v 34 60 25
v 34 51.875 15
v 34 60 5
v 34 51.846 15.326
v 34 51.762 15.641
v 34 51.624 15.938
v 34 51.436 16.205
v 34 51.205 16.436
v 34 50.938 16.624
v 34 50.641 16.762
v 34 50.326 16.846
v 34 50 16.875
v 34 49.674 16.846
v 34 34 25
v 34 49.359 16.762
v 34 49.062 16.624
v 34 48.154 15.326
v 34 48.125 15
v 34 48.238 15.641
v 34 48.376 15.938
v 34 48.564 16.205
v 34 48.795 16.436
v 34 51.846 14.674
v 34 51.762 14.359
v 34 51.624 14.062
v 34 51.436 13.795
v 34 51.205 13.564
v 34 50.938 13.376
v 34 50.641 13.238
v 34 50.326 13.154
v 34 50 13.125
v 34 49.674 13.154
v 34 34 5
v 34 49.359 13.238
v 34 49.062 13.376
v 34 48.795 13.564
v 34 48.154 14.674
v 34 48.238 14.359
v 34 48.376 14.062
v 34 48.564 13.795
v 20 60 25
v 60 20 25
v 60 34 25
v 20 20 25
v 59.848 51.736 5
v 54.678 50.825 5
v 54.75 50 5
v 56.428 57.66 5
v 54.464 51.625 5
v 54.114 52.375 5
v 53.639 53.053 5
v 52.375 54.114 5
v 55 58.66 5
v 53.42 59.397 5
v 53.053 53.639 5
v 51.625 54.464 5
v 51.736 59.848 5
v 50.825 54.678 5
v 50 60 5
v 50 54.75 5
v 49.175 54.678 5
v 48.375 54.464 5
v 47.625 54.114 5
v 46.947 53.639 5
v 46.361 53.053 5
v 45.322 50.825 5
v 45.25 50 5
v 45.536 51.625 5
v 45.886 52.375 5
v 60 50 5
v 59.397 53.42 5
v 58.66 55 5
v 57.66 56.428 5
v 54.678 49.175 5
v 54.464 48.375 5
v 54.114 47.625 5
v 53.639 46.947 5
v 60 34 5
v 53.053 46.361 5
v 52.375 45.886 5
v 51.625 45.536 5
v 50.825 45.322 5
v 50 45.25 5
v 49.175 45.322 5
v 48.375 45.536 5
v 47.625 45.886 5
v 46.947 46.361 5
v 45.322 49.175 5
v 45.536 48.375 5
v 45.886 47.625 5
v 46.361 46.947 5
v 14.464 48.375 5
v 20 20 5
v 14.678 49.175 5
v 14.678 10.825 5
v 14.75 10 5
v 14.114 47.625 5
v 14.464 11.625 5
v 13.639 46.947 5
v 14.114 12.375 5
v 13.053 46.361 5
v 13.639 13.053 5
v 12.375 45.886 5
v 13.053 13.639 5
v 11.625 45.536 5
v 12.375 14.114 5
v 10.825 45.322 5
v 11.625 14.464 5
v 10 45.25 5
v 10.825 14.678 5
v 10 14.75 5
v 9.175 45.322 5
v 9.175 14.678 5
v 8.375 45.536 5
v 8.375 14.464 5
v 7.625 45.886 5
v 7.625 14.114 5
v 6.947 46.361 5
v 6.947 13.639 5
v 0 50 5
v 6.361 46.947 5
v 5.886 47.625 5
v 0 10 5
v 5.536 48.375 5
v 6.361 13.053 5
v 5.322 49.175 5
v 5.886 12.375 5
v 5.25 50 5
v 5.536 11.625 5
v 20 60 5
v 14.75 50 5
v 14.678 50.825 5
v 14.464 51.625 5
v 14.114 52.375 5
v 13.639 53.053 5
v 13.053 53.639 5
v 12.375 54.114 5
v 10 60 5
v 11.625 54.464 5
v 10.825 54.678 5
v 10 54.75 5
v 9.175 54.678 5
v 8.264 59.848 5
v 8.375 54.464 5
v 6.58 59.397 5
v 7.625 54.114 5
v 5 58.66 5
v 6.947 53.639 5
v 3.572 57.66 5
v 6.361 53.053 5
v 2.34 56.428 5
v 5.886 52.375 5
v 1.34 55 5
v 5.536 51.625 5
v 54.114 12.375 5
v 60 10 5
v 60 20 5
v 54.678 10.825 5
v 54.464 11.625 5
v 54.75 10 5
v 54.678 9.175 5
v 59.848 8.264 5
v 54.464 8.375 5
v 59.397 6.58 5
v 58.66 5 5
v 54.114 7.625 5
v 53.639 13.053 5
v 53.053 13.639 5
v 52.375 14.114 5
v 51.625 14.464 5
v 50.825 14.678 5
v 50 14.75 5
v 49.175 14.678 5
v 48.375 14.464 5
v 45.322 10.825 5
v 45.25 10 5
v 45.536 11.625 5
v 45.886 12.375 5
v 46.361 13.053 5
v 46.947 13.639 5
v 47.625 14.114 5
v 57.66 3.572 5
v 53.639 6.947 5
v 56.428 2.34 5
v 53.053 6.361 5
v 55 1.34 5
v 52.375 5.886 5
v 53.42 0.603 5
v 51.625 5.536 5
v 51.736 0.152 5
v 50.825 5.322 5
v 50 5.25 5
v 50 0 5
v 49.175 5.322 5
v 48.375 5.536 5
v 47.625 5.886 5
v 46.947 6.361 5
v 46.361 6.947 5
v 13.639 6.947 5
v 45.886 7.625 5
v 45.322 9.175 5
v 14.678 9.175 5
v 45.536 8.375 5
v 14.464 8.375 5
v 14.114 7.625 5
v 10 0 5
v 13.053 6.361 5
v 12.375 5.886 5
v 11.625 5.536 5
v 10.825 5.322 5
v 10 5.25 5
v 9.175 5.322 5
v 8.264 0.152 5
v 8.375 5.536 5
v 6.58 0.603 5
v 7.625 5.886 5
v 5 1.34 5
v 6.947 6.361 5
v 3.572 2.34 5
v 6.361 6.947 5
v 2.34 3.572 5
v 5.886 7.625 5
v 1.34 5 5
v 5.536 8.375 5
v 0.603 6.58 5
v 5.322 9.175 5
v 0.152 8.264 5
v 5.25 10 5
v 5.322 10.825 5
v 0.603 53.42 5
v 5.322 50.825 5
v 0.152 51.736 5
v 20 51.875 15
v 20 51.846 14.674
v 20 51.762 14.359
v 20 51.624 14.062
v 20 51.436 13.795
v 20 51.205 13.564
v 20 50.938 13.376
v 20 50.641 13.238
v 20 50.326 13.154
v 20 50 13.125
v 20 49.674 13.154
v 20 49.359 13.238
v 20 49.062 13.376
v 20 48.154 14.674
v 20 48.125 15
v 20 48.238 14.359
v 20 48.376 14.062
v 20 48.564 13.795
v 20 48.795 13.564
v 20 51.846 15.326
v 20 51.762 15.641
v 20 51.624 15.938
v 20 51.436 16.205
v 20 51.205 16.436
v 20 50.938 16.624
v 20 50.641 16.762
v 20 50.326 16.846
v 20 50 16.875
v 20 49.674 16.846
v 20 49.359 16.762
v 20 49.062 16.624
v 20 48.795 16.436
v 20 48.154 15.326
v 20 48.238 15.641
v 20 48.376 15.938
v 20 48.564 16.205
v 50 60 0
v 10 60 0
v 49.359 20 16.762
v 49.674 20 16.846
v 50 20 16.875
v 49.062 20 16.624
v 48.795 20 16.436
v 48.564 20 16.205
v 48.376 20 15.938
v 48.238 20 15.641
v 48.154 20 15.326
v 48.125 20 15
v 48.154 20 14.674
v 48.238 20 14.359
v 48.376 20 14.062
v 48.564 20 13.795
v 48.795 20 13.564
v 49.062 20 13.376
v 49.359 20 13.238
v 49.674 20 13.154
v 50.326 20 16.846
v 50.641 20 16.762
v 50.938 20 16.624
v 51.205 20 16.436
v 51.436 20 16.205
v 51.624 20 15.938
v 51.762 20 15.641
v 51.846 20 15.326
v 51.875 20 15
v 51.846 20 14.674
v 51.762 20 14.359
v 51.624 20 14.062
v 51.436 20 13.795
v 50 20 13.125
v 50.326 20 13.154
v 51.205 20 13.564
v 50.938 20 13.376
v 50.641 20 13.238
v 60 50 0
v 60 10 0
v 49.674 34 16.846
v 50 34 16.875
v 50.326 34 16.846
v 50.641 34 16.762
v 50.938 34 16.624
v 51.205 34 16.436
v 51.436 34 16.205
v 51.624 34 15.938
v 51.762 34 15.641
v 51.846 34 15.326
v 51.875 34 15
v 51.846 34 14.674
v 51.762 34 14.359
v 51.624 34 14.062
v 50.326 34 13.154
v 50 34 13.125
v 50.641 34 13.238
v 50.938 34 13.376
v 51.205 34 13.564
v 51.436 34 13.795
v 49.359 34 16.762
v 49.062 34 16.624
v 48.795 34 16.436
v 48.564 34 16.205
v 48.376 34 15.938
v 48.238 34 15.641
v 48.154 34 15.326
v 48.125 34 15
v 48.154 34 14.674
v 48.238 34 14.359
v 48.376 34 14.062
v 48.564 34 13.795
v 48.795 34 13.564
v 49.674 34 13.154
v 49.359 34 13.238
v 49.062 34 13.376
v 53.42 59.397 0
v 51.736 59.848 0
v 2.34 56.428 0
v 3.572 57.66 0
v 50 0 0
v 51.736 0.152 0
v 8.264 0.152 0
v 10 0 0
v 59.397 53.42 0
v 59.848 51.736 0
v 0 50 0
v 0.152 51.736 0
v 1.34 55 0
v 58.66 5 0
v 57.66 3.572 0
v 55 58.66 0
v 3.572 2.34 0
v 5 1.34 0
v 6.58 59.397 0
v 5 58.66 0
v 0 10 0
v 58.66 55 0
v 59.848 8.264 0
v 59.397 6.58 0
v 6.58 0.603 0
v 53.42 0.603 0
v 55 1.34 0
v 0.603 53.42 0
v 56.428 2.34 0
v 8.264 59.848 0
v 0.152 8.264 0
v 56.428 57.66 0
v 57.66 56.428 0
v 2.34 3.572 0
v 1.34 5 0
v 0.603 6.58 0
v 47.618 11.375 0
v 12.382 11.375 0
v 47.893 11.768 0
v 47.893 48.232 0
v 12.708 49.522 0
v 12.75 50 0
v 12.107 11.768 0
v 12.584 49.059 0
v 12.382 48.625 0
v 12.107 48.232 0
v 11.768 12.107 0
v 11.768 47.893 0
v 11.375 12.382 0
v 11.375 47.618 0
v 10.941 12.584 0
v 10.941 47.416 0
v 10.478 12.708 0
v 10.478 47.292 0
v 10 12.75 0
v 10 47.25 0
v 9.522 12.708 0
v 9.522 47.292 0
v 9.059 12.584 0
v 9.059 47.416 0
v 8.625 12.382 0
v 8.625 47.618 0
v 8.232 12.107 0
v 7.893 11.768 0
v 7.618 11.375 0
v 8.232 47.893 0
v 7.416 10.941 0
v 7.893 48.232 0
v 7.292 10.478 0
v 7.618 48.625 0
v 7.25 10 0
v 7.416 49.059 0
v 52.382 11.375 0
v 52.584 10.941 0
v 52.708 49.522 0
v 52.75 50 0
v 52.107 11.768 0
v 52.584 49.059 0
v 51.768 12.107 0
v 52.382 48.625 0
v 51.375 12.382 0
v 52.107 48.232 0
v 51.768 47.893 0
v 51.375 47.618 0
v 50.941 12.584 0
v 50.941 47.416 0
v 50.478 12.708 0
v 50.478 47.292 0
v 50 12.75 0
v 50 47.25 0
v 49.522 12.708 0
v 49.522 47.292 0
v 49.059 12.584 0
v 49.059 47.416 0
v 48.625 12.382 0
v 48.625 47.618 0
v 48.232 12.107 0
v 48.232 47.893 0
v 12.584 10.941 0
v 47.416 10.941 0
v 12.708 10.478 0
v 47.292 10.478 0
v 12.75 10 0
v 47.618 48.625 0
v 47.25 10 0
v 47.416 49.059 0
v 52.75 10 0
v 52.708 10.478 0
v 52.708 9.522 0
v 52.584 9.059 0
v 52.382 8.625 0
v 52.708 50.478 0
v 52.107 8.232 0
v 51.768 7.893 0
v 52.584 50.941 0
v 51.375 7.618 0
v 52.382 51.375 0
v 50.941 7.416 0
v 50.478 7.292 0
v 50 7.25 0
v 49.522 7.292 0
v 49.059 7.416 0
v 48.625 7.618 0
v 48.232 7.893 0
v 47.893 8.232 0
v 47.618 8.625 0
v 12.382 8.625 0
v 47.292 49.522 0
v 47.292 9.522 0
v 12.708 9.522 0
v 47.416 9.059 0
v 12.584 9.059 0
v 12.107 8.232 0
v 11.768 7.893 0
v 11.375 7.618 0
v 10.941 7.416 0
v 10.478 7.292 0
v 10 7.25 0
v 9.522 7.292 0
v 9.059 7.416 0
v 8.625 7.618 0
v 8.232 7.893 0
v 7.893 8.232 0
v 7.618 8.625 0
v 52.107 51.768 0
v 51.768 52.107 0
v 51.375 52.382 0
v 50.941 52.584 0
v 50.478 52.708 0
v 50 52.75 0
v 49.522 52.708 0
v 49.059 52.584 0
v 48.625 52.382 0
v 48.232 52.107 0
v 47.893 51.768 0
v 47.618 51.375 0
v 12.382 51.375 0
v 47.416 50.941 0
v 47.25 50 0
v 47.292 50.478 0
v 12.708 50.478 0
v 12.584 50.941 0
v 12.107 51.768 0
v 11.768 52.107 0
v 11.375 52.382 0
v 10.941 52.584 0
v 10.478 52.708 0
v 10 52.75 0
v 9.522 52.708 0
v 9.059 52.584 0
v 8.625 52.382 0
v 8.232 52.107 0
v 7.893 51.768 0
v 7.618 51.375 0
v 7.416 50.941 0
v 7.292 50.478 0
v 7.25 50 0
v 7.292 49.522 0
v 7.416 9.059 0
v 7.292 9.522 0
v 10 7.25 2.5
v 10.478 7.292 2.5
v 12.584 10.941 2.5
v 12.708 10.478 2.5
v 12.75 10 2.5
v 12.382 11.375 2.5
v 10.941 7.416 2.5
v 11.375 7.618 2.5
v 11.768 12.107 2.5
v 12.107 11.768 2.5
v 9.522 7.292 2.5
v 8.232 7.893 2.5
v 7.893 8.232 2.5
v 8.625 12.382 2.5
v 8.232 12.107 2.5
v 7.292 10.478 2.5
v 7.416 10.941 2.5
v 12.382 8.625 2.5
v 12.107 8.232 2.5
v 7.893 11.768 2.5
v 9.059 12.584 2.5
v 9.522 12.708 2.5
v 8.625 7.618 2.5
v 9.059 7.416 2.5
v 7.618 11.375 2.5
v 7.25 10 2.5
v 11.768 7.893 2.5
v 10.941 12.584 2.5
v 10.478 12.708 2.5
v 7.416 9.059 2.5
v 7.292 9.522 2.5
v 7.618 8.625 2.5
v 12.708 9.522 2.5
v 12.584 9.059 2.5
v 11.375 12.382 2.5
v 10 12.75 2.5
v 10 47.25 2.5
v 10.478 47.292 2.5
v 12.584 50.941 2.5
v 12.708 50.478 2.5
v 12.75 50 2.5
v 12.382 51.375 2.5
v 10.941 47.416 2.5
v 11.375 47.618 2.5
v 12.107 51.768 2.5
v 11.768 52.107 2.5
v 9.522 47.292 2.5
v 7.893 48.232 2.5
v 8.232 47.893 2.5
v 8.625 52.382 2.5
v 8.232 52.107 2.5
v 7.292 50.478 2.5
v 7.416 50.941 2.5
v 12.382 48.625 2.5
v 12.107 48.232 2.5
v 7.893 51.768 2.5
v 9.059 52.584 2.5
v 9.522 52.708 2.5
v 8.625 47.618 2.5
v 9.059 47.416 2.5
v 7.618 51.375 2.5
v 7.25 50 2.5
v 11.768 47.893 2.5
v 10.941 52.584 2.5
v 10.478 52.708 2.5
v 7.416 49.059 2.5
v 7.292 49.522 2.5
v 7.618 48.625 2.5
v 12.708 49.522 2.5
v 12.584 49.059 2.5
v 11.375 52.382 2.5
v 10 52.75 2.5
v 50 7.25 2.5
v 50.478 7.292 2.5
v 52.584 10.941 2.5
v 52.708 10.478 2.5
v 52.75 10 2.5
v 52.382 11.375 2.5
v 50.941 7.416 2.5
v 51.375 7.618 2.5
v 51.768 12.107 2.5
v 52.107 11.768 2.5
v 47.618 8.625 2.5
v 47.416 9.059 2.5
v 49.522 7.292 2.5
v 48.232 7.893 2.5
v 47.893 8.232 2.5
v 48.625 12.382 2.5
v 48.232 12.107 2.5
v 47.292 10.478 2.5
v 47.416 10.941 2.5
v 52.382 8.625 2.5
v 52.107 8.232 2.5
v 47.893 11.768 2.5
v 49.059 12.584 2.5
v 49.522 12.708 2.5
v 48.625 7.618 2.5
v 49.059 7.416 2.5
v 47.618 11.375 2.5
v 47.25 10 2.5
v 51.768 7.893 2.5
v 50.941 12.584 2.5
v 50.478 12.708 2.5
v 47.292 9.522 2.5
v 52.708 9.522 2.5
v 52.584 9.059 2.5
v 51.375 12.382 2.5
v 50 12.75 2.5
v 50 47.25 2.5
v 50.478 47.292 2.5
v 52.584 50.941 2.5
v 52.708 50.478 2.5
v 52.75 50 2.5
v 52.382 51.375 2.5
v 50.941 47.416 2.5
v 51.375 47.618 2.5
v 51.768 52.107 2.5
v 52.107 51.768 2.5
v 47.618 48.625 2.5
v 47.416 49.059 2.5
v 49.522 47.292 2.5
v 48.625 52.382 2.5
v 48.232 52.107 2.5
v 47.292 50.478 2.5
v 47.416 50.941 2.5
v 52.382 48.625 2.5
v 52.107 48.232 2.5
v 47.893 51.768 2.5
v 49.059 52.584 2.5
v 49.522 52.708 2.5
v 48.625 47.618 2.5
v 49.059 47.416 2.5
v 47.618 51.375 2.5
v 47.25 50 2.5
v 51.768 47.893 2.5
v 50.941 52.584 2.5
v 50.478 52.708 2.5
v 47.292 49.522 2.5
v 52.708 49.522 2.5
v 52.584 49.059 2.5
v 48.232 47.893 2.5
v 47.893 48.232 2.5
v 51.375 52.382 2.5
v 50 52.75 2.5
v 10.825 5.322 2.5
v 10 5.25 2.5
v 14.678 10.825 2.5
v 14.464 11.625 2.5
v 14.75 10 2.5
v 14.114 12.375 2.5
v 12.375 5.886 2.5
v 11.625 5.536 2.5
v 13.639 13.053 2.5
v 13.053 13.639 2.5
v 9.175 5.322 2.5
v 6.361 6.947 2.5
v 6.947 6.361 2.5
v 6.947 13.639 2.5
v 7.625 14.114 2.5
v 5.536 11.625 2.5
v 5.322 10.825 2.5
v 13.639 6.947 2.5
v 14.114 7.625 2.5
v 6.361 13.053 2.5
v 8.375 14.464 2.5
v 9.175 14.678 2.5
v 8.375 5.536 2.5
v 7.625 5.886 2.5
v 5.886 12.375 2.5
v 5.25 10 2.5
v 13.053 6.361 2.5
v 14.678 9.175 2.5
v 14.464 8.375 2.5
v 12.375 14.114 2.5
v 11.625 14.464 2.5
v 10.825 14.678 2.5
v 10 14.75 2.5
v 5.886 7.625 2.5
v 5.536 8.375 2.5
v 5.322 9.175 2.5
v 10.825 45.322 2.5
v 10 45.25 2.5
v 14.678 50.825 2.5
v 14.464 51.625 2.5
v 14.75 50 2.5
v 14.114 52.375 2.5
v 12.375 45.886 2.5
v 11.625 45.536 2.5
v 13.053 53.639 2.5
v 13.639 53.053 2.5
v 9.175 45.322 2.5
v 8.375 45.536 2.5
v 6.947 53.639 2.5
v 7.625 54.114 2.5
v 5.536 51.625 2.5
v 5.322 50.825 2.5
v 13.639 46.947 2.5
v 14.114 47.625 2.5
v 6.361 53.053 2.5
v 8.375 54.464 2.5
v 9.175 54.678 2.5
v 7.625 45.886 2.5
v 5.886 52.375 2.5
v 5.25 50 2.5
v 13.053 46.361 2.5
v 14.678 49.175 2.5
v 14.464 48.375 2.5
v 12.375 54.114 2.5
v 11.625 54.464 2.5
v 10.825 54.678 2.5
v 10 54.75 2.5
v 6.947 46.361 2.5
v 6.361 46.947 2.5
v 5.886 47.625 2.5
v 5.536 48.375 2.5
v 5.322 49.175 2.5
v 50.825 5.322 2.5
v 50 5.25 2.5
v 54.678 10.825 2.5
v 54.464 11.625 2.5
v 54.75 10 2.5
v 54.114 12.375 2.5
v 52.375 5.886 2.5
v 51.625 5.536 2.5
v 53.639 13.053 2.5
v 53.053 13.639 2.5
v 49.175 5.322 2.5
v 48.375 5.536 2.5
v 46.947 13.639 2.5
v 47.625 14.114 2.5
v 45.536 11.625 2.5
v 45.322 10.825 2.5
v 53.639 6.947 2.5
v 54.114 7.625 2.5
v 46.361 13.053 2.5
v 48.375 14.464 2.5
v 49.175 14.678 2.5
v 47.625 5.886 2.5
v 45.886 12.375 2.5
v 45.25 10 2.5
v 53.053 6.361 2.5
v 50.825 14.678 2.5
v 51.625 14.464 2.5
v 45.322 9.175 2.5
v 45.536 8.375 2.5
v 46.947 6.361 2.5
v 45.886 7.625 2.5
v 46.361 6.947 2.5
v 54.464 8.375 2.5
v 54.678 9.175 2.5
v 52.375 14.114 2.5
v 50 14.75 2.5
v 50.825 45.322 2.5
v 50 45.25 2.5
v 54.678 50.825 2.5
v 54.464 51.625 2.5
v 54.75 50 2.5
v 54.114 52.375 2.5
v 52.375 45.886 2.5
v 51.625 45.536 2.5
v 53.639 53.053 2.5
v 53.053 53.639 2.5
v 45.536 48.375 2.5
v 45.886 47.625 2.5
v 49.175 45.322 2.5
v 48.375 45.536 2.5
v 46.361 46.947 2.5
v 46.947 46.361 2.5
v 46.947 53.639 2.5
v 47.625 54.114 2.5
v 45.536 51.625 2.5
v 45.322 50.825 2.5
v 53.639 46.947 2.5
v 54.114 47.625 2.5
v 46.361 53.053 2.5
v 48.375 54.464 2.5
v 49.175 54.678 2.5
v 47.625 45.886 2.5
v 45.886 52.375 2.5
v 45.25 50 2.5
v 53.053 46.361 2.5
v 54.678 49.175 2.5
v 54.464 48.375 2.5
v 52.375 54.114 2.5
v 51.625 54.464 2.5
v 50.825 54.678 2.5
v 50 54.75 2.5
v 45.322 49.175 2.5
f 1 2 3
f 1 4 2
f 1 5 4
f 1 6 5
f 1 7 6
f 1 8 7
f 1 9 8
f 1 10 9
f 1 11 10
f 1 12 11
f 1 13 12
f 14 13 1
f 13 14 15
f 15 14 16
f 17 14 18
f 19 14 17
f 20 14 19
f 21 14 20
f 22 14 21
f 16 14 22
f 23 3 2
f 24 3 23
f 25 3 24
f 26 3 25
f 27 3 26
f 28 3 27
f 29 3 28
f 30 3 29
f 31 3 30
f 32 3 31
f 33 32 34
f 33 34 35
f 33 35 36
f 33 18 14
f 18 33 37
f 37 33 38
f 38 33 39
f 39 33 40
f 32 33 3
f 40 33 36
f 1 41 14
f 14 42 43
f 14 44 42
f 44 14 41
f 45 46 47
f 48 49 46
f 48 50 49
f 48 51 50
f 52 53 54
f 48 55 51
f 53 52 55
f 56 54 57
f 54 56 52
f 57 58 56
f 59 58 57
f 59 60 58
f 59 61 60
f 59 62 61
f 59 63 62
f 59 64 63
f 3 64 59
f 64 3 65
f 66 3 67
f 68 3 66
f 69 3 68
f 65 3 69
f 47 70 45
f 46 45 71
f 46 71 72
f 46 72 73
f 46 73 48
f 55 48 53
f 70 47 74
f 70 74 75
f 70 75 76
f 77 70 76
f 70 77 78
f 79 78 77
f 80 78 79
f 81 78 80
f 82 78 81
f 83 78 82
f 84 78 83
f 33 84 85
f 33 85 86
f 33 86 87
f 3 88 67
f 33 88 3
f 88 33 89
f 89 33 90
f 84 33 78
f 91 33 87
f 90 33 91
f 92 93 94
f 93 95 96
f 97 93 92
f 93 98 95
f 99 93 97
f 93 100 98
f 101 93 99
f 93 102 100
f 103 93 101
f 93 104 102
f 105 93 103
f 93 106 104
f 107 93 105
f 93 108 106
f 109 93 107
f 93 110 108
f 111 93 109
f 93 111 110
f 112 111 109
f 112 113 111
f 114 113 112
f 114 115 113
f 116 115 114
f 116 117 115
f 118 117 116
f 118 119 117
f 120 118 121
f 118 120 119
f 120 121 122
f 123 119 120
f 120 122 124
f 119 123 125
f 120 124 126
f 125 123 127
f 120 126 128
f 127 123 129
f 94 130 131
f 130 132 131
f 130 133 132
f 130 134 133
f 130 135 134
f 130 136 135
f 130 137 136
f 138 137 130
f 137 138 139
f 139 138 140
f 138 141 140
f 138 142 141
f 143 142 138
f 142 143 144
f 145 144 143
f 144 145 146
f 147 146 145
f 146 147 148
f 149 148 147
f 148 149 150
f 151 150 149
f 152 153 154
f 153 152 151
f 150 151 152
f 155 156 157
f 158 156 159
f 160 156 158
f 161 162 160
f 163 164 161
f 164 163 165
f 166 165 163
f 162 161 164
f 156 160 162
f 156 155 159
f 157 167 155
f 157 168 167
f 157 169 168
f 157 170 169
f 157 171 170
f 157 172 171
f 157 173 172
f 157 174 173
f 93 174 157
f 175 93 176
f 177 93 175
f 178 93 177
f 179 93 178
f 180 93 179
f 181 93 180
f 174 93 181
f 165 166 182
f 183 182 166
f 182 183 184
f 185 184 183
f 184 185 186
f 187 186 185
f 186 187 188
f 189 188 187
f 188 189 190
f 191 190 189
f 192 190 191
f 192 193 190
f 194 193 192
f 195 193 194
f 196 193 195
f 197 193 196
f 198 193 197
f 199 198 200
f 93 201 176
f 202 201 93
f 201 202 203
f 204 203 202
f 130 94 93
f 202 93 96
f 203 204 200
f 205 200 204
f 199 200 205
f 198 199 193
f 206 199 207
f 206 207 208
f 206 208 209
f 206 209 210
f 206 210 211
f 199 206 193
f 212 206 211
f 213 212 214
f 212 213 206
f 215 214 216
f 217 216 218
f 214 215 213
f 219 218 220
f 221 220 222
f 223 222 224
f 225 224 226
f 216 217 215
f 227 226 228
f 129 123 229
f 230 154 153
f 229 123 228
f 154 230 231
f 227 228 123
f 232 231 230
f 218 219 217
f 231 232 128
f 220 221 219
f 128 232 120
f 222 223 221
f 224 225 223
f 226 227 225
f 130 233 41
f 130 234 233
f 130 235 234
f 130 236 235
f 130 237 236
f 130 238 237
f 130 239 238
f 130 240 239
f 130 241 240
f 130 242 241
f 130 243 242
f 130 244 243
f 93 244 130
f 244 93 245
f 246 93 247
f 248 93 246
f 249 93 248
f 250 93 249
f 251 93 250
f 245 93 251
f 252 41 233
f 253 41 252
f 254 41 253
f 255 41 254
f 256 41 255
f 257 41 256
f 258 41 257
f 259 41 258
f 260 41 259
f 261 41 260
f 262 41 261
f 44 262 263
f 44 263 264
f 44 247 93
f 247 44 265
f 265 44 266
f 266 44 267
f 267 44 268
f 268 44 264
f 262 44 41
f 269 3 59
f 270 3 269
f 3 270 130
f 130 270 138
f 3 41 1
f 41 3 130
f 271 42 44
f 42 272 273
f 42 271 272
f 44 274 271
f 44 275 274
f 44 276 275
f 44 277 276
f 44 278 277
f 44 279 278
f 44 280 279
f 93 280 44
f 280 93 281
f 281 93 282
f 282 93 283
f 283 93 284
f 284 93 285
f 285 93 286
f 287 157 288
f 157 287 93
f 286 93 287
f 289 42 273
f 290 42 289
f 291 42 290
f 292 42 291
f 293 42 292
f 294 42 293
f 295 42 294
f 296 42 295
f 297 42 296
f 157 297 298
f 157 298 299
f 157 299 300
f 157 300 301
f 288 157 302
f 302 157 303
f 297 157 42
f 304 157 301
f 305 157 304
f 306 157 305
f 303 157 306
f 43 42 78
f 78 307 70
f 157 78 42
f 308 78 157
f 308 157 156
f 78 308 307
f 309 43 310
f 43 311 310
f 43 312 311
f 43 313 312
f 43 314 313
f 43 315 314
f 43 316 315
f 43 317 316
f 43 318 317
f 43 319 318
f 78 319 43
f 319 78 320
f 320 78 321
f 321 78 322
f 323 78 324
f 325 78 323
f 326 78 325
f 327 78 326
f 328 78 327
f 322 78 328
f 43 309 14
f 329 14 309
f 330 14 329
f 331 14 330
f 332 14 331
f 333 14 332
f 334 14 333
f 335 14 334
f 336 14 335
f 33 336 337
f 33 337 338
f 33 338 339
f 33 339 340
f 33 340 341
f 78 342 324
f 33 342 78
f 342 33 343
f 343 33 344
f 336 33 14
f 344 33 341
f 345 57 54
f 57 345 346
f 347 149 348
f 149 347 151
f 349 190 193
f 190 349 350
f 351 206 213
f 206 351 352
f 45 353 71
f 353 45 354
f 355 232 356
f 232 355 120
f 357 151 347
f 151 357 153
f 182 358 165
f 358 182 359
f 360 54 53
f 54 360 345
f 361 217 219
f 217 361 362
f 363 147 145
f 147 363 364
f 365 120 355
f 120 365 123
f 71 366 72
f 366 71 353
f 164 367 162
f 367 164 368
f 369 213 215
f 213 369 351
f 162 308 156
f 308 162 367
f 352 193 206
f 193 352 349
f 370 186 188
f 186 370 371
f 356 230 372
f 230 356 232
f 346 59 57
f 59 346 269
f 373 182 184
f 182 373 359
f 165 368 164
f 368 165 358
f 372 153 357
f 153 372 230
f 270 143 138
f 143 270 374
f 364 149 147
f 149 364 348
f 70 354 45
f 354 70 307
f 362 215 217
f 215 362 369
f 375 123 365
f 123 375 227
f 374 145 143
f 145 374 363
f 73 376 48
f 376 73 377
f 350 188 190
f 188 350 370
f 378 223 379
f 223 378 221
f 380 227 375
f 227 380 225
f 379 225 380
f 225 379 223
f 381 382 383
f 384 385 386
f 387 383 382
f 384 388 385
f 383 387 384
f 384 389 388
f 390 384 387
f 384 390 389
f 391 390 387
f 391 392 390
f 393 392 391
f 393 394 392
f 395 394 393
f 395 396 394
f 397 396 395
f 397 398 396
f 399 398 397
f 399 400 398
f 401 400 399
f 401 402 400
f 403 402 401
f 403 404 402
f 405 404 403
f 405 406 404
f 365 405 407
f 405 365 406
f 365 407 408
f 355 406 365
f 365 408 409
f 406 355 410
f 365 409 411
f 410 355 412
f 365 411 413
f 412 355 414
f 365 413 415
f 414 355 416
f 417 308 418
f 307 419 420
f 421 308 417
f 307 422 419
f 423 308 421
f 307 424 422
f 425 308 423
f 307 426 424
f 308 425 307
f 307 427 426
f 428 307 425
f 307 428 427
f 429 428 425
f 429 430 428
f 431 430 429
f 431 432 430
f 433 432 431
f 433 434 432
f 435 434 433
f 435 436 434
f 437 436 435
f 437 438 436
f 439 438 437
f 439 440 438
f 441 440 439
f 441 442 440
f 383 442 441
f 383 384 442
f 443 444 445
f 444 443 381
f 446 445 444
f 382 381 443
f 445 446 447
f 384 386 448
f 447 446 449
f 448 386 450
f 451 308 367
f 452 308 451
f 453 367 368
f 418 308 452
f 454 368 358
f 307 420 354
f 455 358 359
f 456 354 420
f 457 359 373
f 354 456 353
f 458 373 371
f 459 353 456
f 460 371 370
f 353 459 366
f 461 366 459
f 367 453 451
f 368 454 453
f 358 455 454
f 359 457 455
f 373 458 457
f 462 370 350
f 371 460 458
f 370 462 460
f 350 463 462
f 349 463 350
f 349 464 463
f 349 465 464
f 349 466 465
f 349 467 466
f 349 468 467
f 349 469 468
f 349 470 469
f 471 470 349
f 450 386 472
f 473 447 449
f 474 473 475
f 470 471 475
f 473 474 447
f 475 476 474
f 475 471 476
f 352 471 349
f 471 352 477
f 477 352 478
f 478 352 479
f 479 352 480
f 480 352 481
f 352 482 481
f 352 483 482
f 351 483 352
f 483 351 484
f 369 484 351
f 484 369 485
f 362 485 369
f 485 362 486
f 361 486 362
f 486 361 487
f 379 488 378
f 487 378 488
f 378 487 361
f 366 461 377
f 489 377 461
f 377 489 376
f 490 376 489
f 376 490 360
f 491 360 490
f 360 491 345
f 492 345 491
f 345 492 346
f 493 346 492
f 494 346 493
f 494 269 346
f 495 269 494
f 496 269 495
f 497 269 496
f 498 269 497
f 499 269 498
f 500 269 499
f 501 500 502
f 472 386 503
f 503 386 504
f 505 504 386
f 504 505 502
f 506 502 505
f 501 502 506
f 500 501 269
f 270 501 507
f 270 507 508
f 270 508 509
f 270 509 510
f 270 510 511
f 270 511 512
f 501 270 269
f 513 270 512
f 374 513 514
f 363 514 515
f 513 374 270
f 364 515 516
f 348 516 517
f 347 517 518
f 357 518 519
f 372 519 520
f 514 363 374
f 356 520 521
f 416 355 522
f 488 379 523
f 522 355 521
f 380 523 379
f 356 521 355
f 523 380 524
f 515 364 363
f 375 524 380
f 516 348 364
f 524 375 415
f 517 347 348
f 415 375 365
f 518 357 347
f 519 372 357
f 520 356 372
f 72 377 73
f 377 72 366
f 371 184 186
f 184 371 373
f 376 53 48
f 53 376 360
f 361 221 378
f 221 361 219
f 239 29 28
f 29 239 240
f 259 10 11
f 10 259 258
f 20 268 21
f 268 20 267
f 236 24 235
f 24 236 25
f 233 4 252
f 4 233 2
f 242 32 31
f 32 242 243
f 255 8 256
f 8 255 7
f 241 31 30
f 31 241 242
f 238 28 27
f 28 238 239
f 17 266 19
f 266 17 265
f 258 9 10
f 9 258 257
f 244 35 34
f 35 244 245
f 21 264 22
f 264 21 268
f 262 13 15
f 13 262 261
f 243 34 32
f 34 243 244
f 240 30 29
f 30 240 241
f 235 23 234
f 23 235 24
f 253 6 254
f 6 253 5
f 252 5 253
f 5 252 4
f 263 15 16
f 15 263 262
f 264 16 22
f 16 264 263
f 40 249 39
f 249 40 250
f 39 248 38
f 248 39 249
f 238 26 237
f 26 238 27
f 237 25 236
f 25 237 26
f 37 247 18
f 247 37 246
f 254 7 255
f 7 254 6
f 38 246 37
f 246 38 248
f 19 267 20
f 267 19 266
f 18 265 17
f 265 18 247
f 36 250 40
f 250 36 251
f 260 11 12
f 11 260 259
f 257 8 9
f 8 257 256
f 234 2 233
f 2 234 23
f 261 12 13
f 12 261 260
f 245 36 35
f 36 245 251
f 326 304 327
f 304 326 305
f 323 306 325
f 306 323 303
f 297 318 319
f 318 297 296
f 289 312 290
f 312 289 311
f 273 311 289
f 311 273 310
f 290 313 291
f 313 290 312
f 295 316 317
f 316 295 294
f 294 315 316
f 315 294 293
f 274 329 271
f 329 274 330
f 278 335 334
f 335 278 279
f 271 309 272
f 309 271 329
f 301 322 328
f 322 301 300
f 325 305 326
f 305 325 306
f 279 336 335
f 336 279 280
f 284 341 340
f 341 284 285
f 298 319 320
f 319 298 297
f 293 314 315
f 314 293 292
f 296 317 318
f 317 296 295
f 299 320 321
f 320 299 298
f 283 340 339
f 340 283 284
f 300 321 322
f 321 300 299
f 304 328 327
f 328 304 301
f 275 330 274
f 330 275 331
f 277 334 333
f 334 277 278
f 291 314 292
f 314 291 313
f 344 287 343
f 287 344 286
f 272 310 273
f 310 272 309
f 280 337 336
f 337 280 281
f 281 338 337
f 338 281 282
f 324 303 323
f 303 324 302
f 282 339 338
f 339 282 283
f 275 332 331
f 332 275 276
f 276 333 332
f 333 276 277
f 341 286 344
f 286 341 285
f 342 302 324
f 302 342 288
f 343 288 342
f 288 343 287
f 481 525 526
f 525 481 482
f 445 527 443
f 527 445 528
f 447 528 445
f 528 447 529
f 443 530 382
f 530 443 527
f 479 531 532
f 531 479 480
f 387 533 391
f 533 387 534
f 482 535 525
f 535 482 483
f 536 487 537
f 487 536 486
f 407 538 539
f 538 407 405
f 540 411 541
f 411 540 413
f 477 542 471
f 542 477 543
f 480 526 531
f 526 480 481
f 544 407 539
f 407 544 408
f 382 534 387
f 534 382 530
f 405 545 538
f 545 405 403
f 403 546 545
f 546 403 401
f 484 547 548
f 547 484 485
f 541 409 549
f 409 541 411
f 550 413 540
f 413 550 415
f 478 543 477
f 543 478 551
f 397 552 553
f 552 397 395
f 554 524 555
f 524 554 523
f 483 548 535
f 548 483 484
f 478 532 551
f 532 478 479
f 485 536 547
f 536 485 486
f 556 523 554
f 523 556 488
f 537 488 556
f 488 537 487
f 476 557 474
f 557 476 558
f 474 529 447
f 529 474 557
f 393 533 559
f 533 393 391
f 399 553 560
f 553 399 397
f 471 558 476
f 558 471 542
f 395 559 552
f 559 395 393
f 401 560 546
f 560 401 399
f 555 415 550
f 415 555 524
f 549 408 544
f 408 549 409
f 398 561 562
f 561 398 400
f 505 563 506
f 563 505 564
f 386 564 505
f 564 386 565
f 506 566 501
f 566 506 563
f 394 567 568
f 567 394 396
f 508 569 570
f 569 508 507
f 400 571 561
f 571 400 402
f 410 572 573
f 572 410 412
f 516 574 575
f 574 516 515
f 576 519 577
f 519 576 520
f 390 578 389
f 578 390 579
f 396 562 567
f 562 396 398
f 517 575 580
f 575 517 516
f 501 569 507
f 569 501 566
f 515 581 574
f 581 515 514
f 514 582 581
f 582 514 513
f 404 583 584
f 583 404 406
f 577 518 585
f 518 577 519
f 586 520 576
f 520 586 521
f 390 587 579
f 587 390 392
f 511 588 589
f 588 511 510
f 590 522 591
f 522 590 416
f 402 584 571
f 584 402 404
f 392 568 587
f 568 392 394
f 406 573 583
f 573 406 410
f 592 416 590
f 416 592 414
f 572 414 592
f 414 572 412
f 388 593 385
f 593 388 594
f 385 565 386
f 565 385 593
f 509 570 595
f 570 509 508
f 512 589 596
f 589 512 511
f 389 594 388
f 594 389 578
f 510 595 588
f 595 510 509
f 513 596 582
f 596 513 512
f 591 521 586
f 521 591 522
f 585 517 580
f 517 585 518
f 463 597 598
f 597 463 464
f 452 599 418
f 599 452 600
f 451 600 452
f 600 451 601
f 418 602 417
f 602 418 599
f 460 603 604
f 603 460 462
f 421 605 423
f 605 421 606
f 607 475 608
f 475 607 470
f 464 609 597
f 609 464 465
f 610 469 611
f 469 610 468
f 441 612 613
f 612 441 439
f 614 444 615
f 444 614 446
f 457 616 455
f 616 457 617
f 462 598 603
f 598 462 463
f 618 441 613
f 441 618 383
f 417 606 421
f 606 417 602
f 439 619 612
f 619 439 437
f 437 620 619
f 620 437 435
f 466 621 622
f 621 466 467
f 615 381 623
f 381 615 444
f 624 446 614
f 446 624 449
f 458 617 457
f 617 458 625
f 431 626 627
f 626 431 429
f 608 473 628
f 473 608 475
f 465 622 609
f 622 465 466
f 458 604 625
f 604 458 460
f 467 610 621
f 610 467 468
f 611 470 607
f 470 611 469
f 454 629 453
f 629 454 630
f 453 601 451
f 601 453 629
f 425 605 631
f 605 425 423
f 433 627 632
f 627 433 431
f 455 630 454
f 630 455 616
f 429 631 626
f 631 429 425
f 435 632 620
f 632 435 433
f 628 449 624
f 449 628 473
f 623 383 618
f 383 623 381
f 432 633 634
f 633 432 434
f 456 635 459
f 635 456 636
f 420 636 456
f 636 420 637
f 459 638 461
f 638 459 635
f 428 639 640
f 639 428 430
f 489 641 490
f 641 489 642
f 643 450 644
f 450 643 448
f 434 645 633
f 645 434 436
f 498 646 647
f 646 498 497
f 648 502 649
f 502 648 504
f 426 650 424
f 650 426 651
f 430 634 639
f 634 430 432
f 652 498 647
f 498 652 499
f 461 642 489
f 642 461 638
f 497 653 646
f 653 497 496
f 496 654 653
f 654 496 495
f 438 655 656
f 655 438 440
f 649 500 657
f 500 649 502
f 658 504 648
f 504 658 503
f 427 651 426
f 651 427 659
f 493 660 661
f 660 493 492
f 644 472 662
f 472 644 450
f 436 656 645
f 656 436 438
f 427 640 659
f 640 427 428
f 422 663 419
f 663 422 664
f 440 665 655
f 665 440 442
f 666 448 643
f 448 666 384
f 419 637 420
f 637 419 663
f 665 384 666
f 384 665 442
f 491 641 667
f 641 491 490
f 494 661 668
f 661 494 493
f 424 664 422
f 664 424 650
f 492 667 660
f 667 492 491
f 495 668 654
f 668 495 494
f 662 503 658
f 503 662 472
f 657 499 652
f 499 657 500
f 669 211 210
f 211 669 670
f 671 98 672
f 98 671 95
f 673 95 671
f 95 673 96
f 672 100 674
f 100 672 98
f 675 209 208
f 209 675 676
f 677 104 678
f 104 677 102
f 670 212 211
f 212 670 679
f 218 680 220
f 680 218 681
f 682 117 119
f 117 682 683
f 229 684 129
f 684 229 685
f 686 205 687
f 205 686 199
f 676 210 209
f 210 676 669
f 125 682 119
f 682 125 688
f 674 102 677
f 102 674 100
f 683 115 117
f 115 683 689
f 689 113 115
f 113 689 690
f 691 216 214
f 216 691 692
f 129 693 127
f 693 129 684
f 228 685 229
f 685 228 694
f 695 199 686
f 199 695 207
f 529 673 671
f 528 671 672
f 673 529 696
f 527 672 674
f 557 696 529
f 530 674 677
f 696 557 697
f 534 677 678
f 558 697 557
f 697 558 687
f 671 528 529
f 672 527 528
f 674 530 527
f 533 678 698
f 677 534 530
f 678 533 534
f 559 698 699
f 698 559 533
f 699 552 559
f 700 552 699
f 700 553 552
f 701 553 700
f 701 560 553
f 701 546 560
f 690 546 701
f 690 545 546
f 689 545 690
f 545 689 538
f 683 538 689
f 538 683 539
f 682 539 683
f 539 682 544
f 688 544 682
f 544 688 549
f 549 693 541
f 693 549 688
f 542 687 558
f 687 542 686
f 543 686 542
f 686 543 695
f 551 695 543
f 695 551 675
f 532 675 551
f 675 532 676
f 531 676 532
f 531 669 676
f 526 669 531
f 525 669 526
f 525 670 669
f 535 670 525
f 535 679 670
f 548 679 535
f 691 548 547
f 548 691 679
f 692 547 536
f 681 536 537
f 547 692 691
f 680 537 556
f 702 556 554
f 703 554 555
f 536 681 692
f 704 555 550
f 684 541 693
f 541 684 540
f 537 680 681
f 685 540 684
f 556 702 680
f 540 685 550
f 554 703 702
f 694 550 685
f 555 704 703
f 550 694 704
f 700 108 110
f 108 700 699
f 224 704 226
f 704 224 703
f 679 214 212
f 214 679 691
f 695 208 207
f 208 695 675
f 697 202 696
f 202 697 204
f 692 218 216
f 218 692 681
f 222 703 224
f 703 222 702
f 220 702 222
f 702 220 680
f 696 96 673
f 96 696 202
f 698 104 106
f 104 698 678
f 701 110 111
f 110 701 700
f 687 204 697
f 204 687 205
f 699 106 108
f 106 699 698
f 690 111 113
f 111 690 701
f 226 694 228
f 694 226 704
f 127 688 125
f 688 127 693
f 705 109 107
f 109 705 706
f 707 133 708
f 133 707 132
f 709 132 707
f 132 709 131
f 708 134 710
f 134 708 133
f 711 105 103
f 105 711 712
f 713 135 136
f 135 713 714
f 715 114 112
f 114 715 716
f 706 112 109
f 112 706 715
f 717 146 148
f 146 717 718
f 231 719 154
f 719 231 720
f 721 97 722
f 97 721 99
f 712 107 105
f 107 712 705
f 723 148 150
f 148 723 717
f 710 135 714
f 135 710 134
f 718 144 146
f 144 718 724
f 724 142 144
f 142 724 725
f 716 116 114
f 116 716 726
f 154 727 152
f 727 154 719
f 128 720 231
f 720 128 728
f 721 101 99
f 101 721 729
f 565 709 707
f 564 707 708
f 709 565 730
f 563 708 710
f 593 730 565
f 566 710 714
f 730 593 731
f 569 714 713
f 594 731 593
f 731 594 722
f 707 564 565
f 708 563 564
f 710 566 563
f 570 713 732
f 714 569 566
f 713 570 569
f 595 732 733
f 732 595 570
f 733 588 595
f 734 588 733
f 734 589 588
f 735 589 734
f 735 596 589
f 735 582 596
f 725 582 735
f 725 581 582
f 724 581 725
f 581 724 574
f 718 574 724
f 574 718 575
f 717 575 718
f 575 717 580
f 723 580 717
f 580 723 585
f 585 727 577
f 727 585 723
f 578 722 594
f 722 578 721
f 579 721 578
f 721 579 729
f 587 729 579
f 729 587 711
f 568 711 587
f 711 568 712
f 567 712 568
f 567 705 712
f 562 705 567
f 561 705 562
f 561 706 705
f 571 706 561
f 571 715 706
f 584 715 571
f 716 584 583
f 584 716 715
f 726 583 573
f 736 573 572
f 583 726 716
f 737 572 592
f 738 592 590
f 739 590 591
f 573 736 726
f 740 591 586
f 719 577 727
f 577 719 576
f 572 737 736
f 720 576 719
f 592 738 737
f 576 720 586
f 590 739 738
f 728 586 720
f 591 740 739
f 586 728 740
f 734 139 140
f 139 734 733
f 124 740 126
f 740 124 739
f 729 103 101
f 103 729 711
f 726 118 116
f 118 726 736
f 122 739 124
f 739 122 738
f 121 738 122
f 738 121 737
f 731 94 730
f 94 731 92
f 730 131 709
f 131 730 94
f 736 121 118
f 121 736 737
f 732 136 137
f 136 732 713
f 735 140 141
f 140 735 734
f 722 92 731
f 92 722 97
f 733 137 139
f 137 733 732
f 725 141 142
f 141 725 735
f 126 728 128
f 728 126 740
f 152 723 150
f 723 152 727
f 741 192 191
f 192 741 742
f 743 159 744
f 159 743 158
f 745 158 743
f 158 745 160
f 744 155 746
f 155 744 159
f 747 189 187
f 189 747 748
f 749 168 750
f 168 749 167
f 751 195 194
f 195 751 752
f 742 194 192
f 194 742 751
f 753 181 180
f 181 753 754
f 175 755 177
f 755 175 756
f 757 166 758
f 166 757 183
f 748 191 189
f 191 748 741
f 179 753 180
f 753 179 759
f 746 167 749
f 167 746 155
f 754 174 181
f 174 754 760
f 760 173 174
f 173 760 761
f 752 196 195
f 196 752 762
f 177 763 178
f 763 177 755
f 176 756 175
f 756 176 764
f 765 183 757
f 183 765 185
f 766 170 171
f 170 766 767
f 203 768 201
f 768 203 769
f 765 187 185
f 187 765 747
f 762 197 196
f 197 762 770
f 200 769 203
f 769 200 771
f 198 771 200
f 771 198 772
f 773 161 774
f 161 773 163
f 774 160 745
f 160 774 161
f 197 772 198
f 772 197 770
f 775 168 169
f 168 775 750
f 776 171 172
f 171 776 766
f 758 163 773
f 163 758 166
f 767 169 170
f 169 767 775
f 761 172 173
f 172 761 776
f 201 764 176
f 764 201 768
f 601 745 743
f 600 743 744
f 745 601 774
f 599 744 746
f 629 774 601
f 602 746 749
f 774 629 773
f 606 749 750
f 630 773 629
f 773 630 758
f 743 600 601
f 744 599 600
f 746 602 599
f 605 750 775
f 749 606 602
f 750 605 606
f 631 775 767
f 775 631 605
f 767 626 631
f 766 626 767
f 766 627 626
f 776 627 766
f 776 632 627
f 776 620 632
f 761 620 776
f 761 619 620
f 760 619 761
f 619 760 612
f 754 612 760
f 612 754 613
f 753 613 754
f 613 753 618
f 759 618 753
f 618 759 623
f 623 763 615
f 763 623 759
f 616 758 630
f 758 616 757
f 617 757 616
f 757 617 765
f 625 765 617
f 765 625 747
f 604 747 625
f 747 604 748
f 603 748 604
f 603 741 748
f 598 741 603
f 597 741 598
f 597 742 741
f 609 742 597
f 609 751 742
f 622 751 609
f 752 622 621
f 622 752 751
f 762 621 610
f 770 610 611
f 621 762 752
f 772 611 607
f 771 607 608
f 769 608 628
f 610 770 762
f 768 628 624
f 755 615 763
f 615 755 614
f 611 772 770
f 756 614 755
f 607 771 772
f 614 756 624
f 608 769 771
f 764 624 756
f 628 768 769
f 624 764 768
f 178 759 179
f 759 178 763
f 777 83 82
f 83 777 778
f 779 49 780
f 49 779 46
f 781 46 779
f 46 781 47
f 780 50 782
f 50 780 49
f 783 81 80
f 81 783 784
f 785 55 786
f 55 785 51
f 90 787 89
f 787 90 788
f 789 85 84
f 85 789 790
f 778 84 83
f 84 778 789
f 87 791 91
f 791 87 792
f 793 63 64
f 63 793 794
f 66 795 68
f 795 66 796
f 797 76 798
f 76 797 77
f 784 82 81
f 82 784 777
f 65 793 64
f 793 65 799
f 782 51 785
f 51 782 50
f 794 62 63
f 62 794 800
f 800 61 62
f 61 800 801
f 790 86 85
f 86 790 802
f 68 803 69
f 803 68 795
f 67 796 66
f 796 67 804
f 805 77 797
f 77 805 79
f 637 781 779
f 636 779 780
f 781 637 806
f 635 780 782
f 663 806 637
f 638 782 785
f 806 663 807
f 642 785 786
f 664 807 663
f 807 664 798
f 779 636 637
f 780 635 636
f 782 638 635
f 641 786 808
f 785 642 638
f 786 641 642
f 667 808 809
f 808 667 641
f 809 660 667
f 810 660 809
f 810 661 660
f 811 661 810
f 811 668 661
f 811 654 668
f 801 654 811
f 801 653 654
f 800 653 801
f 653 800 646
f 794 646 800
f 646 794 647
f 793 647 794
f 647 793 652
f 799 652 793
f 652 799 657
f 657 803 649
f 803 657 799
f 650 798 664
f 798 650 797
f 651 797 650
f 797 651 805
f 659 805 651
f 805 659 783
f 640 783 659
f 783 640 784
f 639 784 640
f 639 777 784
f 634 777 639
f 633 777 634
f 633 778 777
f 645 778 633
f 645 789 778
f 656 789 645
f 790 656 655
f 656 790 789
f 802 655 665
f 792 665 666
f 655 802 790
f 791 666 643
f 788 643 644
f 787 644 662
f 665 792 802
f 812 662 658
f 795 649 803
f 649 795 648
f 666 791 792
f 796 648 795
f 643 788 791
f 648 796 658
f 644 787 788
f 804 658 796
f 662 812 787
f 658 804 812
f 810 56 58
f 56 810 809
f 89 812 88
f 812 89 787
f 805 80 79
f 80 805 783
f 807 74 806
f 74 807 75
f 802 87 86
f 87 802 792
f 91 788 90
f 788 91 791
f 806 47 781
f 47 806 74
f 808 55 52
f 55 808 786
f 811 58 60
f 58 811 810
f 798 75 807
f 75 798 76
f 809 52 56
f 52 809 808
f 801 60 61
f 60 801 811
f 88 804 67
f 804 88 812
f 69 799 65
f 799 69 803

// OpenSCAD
/*
 * Machdyne PNP
 * Copyright (c) 2023 Lone Dynamics Corporation. All rights reserved.
 *
 * X-Y Axis Table Mount
 *
 */
 
$fn = 36;
 
xytm();
 
module xytm() {
	
	difference() {
		
		union() {
			
			roundedcube(60,60,5,10);
	
			color([0.7,0,0]) {
				translate([20,20,5]) cube([14,40,20]);
				translate([20,20,5]) cube([40,14,20]);
			}
			
		}
		
		// TODO: 4x flush mount holes down to the table
		
		rotate([0,90,0]) translate([-15,50,20]) cylinder(d=3.75, h=200, center=true);
		rotate([90,0,0]) translate([50,15,0]) cylinder(d=3.75, h=200, center=true);

		translate([10,10,0]) cylinder(d=5.5, h=200, center=true);
		translate([10,50,0]) cylinder(d=5.5, h=200, center=true);
		translate([50,10,0]) cylinder(d=5.5, h=200, center=true);
		translate([50,50,0]) cylinder(d=5.5, h=200, center=true);

		translate([10,10,10-2.5]) cylinder(d=9.5, h=10, center=true);
		translate([10,50,10-2.5]) cylinder(d=9.5, h=10, center=true);
		translate([50,10,10-2.5]) cylinder(d=9.5, h=10, center=true);
		translate([50,50,10-2.5]) cylinder(d=9.5, h=10, center=true);
	
	}
	
}

// https://gist.github.com/tinkerology/ae257c5340a33ee2f149ff3ae97d9826
module roundedcube(xx, yy, height, radius)
{
    translate([0,0,height/2])
    hull()
    {
        translate([radius,radius,0])
        cylinder(height,radius,radius,true);

        translate([xx-radius,radius,0])
        cylinder(height,radius,radius,true);

        translate([xx-radius,yy-radius,0])
        cylinder(height,radius,radius,true);

        translate([radius,yy-radius,0])
        cylinder(height,radius,radius,true);
    }
}
